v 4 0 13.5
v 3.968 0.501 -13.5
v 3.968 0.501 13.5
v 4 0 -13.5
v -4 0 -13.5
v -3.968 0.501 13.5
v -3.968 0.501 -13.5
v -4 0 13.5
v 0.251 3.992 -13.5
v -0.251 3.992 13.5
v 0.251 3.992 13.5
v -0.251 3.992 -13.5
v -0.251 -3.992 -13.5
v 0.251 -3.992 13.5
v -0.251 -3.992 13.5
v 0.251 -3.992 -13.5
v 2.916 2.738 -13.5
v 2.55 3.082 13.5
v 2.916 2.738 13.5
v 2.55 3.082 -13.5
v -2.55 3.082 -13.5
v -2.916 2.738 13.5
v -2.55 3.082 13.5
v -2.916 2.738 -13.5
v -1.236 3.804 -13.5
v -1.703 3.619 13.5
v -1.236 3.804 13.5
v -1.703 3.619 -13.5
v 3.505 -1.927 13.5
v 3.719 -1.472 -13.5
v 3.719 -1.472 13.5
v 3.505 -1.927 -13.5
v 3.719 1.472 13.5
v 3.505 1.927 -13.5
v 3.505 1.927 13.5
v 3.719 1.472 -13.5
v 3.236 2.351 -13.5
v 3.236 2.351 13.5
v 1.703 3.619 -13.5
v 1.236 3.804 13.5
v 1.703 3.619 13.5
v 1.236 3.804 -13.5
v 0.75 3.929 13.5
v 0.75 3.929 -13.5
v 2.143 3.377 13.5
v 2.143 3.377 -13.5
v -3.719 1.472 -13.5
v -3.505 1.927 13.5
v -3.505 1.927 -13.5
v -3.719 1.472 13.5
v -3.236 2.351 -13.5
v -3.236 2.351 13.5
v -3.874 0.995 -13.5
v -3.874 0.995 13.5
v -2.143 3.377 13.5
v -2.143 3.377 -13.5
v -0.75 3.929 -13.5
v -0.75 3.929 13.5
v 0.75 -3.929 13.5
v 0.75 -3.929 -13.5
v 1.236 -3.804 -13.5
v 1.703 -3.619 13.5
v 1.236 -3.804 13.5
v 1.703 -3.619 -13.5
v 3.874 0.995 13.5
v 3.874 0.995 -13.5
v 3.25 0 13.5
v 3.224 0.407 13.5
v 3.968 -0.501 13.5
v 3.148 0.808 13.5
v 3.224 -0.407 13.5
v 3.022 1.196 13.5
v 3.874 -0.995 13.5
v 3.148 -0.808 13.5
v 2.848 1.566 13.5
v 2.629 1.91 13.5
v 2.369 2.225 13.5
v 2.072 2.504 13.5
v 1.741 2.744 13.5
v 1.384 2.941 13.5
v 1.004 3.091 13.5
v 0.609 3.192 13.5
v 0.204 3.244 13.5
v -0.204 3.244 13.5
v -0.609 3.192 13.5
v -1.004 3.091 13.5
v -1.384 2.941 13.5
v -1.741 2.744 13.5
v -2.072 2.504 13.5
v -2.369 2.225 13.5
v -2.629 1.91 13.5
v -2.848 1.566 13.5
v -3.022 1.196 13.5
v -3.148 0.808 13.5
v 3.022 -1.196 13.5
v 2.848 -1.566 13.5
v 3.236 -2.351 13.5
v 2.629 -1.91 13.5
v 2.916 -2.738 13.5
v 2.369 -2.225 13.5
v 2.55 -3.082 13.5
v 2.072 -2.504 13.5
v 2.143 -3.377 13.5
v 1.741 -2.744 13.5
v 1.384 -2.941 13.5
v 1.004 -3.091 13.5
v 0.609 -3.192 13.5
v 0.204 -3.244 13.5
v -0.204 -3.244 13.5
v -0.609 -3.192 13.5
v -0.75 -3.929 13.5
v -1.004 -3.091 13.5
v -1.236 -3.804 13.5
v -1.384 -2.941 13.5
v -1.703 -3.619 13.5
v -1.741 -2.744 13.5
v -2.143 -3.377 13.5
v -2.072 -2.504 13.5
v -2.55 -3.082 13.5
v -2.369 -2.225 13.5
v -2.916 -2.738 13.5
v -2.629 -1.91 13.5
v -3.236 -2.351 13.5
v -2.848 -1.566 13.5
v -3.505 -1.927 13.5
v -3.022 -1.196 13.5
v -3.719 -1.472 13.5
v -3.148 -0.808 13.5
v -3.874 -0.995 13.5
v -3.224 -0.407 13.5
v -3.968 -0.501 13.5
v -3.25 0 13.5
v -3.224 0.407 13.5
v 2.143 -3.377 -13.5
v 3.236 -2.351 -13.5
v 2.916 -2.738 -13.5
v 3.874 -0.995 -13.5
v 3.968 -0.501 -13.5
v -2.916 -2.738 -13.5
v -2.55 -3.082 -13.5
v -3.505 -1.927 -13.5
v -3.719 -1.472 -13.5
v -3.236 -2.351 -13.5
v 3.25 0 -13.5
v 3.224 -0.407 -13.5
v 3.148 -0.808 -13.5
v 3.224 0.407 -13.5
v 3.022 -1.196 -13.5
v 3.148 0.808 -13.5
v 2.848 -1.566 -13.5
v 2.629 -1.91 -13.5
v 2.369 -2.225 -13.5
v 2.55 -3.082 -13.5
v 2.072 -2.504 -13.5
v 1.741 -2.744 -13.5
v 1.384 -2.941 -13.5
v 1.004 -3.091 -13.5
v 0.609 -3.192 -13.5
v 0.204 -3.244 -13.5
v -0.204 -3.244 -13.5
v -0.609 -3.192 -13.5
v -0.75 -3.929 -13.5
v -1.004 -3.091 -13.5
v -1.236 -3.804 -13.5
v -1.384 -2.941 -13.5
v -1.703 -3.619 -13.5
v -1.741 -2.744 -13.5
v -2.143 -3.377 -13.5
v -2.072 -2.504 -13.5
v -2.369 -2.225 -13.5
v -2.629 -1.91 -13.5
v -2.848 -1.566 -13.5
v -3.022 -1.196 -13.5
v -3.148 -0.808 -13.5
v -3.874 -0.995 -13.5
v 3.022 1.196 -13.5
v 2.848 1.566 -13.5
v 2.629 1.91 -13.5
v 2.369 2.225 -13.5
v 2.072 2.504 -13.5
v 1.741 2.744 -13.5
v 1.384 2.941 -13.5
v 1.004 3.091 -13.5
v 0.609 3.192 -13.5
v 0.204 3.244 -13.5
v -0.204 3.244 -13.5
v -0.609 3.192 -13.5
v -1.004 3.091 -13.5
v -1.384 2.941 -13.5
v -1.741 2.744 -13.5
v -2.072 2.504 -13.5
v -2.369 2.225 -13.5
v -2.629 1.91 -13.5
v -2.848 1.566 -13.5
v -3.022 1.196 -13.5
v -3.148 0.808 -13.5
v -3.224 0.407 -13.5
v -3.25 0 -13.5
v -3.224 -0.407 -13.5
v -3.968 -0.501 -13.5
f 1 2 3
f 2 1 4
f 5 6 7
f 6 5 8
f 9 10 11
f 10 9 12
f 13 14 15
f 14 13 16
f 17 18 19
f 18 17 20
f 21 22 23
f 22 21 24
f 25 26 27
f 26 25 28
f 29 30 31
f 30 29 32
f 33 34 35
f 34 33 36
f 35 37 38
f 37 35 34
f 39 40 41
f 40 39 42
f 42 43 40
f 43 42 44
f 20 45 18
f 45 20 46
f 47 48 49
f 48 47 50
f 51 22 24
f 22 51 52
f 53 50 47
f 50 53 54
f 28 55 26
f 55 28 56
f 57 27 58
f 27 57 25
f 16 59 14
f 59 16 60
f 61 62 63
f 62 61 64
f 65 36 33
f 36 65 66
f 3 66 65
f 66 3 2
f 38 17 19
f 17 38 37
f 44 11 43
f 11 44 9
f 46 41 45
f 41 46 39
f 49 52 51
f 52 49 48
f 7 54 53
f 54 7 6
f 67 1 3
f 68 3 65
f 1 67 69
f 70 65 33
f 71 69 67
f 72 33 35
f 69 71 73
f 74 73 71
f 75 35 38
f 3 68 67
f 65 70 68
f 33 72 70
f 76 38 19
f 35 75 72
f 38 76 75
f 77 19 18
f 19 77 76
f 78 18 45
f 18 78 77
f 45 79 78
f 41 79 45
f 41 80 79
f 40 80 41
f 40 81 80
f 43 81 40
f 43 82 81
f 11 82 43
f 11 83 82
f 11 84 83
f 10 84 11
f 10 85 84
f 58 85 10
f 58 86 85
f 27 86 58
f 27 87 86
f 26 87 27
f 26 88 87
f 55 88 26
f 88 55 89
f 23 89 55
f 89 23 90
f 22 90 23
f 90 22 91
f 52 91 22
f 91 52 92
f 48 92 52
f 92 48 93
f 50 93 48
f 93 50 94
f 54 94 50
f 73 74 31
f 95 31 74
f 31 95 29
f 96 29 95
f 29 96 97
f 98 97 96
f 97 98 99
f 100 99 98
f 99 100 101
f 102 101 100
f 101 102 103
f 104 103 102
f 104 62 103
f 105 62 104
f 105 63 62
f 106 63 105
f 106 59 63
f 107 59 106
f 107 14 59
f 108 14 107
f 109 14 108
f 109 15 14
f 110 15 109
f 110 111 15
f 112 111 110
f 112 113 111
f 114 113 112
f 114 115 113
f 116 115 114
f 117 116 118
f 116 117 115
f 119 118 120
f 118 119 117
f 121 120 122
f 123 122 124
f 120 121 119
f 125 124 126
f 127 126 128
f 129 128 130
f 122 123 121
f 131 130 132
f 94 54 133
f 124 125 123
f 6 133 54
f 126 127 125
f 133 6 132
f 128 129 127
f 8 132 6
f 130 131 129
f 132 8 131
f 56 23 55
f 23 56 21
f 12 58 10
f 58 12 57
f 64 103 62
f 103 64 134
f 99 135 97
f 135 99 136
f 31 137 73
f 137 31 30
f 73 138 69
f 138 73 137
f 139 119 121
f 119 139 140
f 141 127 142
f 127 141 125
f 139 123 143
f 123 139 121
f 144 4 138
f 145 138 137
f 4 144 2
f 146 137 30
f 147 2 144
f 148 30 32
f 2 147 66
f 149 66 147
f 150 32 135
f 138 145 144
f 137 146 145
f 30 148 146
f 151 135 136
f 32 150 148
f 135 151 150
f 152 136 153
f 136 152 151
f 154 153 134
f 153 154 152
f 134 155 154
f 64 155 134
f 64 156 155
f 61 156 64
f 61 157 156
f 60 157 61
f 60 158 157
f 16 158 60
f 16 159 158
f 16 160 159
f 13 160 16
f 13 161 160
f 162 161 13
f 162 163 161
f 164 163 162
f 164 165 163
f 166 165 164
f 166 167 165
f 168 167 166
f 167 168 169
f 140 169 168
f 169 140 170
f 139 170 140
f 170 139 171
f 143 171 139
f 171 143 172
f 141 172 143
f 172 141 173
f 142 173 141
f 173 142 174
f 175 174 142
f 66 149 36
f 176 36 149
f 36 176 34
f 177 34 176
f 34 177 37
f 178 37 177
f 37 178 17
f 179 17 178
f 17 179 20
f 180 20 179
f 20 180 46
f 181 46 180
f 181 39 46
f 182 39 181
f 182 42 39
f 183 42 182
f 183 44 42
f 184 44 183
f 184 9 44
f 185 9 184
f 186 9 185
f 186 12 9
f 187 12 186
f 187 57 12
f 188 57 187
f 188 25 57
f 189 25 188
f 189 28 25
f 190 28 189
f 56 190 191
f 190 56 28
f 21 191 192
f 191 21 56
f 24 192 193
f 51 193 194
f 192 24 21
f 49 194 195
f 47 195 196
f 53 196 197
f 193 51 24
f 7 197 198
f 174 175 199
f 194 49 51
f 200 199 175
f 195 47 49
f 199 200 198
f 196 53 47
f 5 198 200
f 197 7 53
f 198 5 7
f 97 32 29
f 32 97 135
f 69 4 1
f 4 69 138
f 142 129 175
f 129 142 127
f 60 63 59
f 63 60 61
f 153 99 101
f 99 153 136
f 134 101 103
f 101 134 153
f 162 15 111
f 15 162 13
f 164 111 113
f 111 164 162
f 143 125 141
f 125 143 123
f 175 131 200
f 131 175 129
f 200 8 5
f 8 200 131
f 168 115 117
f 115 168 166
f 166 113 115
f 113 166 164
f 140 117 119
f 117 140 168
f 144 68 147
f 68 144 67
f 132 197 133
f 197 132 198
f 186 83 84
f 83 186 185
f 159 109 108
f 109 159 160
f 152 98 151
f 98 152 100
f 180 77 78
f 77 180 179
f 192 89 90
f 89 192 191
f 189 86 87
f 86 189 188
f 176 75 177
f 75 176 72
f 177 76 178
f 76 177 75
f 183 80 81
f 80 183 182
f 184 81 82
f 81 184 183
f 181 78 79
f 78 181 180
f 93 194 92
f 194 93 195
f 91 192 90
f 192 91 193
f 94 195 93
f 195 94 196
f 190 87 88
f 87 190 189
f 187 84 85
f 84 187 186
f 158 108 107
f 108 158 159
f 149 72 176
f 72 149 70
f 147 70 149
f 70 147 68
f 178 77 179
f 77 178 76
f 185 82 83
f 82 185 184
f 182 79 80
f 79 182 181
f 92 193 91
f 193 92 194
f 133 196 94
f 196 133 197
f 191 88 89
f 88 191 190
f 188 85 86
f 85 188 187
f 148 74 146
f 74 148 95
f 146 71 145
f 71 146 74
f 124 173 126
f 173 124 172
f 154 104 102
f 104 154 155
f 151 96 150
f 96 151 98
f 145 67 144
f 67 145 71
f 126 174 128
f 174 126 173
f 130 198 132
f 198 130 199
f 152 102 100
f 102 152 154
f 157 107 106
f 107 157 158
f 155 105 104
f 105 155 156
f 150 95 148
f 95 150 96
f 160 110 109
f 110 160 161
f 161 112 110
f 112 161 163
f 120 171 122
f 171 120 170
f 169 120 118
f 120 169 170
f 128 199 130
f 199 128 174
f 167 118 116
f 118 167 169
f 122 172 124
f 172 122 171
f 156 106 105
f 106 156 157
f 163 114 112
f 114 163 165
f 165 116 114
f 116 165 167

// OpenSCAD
$fn = 50;


difference() {
	union() {
		translate(v = [0, 0, -13.5000000000]) {
			cylinder(h = 27, r = 4.0000000000);
		}
	}
	union() {
		translate(v = [0, 0, -100.0000000000]) {
			cylinder(h = 200, r = 3.2500000000);
		}
	}
}
